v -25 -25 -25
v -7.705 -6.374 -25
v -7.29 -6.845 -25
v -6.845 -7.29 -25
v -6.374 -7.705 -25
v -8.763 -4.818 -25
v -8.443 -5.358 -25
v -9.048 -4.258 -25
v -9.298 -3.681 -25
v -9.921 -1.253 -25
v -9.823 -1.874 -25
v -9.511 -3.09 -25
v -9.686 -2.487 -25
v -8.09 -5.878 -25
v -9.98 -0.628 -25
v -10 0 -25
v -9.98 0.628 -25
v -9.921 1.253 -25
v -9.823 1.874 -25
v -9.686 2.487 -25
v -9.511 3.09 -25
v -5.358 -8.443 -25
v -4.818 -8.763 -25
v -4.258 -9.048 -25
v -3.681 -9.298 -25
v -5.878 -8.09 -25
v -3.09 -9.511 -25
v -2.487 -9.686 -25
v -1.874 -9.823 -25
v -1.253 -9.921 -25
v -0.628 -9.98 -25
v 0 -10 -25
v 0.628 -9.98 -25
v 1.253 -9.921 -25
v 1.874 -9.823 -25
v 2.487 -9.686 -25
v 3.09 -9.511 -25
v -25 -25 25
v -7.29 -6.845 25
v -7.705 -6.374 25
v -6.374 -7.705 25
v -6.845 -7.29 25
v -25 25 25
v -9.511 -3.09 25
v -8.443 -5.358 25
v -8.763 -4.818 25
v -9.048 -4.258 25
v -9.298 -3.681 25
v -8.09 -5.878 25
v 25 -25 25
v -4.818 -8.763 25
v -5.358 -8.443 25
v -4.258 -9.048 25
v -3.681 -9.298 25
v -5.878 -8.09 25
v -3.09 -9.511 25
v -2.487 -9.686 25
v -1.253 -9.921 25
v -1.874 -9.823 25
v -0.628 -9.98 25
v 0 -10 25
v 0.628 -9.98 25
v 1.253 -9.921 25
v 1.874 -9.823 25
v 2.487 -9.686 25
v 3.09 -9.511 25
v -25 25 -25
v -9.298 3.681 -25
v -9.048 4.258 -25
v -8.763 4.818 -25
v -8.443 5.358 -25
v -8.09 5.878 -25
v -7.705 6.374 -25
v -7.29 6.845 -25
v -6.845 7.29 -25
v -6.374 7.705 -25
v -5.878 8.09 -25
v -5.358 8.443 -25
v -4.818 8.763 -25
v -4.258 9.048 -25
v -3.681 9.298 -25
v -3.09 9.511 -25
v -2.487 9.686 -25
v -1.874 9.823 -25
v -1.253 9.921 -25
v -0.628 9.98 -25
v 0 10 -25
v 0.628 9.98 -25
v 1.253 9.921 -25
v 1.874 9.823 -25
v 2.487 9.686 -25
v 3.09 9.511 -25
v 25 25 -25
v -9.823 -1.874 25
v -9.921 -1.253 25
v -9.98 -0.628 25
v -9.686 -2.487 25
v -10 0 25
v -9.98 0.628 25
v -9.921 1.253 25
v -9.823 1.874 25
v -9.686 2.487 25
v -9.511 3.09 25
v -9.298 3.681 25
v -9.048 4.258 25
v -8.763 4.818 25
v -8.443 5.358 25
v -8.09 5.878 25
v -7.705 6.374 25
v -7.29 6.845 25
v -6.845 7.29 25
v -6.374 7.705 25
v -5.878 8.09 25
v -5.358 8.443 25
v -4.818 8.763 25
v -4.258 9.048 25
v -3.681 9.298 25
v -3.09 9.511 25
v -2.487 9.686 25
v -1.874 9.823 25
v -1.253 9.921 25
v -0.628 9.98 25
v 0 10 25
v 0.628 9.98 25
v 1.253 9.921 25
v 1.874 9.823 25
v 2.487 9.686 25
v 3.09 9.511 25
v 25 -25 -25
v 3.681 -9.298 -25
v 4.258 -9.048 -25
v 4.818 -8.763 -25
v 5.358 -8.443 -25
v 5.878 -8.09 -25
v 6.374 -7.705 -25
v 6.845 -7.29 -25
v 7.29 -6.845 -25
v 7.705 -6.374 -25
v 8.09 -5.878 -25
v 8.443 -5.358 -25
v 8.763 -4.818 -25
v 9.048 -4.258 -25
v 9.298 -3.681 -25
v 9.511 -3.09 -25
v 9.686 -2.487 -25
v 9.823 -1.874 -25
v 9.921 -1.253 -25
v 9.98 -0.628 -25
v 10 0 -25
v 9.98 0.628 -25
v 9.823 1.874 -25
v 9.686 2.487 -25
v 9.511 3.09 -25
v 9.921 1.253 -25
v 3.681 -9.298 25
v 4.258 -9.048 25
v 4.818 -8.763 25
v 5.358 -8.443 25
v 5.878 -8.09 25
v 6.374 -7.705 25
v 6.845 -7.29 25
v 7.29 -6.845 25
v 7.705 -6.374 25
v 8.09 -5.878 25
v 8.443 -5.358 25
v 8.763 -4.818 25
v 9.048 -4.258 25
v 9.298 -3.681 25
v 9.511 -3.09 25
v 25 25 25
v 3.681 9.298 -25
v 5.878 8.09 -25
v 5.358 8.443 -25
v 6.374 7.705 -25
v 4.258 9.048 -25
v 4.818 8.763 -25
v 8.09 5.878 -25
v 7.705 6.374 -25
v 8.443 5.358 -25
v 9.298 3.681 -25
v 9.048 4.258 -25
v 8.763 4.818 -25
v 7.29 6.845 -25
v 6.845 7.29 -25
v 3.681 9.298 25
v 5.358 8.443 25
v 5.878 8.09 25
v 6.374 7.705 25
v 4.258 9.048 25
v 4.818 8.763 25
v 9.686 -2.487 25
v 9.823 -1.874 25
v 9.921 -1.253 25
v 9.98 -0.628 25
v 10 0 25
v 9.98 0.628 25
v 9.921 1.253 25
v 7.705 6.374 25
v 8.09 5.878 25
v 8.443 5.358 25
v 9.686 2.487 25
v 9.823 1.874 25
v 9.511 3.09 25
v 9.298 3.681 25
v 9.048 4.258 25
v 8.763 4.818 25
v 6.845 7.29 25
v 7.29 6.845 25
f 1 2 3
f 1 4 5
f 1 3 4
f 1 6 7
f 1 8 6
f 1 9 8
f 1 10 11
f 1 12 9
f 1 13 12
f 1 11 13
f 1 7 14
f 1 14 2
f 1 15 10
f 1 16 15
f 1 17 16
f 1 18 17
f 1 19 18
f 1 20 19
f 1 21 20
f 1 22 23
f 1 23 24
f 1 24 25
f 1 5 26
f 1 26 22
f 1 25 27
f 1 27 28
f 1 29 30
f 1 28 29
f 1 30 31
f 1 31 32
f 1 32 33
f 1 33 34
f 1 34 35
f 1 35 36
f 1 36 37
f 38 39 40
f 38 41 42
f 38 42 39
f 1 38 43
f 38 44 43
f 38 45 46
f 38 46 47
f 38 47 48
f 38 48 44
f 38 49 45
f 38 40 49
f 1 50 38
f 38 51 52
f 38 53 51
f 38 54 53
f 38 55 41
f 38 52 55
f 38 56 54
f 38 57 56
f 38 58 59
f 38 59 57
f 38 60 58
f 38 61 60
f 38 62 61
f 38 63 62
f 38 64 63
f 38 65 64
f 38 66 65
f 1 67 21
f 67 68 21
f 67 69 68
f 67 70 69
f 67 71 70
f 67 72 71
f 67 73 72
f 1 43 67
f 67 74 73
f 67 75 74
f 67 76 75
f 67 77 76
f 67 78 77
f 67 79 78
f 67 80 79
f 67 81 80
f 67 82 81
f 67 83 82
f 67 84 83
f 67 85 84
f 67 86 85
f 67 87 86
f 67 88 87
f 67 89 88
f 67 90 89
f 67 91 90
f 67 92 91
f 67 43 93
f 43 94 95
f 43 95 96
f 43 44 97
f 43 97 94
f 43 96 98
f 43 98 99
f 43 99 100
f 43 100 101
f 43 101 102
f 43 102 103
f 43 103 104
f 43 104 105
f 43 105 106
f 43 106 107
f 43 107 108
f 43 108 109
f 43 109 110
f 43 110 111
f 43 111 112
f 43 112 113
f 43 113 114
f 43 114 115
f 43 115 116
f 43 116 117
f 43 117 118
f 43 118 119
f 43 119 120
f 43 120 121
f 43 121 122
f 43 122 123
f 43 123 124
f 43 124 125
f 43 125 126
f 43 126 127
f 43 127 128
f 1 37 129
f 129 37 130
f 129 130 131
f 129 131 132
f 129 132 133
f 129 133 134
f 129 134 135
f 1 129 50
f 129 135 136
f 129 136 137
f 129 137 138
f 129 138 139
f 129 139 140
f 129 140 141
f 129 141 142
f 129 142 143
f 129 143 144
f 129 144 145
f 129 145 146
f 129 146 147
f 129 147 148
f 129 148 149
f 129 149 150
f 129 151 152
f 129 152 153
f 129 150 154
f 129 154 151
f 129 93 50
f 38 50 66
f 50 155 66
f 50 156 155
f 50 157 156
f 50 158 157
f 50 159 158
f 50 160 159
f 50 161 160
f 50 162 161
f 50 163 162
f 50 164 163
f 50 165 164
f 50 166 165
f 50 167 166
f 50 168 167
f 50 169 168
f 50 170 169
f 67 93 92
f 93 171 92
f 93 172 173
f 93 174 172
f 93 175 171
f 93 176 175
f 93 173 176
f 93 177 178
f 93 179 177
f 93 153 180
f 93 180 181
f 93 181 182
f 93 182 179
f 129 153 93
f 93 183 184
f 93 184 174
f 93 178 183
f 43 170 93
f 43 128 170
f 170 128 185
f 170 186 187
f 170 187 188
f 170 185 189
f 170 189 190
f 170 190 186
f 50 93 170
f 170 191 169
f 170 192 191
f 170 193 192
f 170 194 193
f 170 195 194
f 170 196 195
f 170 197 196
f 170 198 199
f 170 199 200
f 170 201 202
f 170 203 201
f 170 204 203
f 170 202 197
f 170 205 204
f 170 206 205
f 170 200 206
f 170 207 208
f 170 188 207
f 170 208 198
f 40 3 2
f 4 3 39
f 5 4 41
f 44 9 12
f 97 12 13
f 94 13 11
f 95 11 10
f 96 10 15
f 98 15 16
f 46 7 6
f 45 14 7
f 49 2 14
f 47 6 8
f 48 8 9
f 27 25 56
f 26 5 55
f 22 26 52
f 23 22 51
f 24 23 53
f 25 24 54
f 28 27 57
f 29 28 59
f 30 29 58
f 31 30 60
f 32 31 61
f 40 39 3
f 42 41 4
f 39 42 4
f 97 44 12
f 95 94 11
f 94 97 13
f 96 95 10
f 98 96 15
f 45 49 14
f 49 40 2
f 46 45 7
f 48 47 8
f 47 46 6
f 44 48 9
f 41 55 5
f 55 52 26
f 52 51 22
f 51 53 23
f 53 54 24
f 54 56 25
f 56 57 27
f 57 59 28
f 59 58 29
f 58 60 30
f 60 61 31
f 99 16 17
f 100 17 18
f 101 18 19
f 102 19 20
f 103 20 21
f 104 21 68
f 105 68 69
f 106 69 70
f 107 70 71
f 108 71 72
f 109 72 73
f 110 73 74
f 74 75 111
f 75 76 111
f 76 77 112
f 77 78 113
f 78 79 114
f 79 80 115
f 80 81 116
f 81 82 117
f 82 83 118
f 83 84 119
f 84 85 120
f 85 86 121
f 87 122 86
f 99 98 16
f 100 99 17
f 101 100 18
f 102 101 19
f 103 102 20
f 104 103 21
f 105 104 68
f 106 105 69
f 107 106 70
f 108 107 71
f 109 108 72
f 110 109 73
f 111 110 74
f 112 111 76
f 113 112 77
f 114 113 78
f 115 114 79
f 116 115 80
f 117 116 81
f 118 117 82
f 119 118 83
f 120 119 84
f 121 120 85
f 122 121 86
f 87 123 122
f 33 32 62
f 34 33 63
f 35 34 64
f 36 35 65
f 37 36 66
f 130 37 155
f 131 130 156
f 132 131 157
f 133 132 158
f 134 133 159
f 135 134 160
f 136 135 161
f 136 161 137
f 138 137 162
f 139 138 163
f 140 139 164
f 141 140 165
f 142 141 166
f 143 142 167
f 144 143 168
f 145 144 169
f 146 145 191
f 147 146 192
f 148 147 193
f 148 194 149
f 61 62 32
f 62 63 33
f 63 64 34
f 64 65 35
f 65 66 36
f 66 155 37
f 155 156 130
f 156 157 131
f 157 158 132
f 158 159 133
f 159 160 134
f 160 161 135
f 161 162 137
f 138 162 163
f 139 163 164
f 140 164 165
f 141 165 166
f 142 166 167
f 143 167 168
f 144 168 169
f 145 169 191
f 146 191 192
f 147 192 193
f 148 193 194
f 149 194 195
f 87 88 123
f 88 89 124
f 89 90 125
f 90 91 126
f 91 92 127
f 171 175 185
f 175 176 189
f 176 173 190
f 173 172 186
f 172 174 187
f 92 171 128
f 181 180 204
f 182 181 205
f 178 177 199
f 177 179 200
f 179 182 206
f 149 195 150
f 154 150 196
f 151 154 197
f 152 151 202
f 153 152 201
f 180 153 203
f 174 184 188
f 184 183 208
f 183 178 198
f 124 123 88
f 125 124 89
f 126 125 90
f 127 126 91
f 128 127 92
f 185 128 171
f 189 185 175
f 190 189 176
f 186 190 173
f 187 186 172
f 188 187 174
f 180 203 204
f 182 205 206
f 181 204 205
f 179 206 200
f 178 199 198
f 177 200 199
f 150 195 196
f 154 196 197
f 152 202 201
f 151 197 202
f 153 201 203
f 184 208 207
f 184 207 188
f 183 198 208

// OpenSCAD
$fn = 100;

difference() {
    cube([50, 50, 50], center = true);
    cylinder(h = 50, d = 20, center = true);
}
